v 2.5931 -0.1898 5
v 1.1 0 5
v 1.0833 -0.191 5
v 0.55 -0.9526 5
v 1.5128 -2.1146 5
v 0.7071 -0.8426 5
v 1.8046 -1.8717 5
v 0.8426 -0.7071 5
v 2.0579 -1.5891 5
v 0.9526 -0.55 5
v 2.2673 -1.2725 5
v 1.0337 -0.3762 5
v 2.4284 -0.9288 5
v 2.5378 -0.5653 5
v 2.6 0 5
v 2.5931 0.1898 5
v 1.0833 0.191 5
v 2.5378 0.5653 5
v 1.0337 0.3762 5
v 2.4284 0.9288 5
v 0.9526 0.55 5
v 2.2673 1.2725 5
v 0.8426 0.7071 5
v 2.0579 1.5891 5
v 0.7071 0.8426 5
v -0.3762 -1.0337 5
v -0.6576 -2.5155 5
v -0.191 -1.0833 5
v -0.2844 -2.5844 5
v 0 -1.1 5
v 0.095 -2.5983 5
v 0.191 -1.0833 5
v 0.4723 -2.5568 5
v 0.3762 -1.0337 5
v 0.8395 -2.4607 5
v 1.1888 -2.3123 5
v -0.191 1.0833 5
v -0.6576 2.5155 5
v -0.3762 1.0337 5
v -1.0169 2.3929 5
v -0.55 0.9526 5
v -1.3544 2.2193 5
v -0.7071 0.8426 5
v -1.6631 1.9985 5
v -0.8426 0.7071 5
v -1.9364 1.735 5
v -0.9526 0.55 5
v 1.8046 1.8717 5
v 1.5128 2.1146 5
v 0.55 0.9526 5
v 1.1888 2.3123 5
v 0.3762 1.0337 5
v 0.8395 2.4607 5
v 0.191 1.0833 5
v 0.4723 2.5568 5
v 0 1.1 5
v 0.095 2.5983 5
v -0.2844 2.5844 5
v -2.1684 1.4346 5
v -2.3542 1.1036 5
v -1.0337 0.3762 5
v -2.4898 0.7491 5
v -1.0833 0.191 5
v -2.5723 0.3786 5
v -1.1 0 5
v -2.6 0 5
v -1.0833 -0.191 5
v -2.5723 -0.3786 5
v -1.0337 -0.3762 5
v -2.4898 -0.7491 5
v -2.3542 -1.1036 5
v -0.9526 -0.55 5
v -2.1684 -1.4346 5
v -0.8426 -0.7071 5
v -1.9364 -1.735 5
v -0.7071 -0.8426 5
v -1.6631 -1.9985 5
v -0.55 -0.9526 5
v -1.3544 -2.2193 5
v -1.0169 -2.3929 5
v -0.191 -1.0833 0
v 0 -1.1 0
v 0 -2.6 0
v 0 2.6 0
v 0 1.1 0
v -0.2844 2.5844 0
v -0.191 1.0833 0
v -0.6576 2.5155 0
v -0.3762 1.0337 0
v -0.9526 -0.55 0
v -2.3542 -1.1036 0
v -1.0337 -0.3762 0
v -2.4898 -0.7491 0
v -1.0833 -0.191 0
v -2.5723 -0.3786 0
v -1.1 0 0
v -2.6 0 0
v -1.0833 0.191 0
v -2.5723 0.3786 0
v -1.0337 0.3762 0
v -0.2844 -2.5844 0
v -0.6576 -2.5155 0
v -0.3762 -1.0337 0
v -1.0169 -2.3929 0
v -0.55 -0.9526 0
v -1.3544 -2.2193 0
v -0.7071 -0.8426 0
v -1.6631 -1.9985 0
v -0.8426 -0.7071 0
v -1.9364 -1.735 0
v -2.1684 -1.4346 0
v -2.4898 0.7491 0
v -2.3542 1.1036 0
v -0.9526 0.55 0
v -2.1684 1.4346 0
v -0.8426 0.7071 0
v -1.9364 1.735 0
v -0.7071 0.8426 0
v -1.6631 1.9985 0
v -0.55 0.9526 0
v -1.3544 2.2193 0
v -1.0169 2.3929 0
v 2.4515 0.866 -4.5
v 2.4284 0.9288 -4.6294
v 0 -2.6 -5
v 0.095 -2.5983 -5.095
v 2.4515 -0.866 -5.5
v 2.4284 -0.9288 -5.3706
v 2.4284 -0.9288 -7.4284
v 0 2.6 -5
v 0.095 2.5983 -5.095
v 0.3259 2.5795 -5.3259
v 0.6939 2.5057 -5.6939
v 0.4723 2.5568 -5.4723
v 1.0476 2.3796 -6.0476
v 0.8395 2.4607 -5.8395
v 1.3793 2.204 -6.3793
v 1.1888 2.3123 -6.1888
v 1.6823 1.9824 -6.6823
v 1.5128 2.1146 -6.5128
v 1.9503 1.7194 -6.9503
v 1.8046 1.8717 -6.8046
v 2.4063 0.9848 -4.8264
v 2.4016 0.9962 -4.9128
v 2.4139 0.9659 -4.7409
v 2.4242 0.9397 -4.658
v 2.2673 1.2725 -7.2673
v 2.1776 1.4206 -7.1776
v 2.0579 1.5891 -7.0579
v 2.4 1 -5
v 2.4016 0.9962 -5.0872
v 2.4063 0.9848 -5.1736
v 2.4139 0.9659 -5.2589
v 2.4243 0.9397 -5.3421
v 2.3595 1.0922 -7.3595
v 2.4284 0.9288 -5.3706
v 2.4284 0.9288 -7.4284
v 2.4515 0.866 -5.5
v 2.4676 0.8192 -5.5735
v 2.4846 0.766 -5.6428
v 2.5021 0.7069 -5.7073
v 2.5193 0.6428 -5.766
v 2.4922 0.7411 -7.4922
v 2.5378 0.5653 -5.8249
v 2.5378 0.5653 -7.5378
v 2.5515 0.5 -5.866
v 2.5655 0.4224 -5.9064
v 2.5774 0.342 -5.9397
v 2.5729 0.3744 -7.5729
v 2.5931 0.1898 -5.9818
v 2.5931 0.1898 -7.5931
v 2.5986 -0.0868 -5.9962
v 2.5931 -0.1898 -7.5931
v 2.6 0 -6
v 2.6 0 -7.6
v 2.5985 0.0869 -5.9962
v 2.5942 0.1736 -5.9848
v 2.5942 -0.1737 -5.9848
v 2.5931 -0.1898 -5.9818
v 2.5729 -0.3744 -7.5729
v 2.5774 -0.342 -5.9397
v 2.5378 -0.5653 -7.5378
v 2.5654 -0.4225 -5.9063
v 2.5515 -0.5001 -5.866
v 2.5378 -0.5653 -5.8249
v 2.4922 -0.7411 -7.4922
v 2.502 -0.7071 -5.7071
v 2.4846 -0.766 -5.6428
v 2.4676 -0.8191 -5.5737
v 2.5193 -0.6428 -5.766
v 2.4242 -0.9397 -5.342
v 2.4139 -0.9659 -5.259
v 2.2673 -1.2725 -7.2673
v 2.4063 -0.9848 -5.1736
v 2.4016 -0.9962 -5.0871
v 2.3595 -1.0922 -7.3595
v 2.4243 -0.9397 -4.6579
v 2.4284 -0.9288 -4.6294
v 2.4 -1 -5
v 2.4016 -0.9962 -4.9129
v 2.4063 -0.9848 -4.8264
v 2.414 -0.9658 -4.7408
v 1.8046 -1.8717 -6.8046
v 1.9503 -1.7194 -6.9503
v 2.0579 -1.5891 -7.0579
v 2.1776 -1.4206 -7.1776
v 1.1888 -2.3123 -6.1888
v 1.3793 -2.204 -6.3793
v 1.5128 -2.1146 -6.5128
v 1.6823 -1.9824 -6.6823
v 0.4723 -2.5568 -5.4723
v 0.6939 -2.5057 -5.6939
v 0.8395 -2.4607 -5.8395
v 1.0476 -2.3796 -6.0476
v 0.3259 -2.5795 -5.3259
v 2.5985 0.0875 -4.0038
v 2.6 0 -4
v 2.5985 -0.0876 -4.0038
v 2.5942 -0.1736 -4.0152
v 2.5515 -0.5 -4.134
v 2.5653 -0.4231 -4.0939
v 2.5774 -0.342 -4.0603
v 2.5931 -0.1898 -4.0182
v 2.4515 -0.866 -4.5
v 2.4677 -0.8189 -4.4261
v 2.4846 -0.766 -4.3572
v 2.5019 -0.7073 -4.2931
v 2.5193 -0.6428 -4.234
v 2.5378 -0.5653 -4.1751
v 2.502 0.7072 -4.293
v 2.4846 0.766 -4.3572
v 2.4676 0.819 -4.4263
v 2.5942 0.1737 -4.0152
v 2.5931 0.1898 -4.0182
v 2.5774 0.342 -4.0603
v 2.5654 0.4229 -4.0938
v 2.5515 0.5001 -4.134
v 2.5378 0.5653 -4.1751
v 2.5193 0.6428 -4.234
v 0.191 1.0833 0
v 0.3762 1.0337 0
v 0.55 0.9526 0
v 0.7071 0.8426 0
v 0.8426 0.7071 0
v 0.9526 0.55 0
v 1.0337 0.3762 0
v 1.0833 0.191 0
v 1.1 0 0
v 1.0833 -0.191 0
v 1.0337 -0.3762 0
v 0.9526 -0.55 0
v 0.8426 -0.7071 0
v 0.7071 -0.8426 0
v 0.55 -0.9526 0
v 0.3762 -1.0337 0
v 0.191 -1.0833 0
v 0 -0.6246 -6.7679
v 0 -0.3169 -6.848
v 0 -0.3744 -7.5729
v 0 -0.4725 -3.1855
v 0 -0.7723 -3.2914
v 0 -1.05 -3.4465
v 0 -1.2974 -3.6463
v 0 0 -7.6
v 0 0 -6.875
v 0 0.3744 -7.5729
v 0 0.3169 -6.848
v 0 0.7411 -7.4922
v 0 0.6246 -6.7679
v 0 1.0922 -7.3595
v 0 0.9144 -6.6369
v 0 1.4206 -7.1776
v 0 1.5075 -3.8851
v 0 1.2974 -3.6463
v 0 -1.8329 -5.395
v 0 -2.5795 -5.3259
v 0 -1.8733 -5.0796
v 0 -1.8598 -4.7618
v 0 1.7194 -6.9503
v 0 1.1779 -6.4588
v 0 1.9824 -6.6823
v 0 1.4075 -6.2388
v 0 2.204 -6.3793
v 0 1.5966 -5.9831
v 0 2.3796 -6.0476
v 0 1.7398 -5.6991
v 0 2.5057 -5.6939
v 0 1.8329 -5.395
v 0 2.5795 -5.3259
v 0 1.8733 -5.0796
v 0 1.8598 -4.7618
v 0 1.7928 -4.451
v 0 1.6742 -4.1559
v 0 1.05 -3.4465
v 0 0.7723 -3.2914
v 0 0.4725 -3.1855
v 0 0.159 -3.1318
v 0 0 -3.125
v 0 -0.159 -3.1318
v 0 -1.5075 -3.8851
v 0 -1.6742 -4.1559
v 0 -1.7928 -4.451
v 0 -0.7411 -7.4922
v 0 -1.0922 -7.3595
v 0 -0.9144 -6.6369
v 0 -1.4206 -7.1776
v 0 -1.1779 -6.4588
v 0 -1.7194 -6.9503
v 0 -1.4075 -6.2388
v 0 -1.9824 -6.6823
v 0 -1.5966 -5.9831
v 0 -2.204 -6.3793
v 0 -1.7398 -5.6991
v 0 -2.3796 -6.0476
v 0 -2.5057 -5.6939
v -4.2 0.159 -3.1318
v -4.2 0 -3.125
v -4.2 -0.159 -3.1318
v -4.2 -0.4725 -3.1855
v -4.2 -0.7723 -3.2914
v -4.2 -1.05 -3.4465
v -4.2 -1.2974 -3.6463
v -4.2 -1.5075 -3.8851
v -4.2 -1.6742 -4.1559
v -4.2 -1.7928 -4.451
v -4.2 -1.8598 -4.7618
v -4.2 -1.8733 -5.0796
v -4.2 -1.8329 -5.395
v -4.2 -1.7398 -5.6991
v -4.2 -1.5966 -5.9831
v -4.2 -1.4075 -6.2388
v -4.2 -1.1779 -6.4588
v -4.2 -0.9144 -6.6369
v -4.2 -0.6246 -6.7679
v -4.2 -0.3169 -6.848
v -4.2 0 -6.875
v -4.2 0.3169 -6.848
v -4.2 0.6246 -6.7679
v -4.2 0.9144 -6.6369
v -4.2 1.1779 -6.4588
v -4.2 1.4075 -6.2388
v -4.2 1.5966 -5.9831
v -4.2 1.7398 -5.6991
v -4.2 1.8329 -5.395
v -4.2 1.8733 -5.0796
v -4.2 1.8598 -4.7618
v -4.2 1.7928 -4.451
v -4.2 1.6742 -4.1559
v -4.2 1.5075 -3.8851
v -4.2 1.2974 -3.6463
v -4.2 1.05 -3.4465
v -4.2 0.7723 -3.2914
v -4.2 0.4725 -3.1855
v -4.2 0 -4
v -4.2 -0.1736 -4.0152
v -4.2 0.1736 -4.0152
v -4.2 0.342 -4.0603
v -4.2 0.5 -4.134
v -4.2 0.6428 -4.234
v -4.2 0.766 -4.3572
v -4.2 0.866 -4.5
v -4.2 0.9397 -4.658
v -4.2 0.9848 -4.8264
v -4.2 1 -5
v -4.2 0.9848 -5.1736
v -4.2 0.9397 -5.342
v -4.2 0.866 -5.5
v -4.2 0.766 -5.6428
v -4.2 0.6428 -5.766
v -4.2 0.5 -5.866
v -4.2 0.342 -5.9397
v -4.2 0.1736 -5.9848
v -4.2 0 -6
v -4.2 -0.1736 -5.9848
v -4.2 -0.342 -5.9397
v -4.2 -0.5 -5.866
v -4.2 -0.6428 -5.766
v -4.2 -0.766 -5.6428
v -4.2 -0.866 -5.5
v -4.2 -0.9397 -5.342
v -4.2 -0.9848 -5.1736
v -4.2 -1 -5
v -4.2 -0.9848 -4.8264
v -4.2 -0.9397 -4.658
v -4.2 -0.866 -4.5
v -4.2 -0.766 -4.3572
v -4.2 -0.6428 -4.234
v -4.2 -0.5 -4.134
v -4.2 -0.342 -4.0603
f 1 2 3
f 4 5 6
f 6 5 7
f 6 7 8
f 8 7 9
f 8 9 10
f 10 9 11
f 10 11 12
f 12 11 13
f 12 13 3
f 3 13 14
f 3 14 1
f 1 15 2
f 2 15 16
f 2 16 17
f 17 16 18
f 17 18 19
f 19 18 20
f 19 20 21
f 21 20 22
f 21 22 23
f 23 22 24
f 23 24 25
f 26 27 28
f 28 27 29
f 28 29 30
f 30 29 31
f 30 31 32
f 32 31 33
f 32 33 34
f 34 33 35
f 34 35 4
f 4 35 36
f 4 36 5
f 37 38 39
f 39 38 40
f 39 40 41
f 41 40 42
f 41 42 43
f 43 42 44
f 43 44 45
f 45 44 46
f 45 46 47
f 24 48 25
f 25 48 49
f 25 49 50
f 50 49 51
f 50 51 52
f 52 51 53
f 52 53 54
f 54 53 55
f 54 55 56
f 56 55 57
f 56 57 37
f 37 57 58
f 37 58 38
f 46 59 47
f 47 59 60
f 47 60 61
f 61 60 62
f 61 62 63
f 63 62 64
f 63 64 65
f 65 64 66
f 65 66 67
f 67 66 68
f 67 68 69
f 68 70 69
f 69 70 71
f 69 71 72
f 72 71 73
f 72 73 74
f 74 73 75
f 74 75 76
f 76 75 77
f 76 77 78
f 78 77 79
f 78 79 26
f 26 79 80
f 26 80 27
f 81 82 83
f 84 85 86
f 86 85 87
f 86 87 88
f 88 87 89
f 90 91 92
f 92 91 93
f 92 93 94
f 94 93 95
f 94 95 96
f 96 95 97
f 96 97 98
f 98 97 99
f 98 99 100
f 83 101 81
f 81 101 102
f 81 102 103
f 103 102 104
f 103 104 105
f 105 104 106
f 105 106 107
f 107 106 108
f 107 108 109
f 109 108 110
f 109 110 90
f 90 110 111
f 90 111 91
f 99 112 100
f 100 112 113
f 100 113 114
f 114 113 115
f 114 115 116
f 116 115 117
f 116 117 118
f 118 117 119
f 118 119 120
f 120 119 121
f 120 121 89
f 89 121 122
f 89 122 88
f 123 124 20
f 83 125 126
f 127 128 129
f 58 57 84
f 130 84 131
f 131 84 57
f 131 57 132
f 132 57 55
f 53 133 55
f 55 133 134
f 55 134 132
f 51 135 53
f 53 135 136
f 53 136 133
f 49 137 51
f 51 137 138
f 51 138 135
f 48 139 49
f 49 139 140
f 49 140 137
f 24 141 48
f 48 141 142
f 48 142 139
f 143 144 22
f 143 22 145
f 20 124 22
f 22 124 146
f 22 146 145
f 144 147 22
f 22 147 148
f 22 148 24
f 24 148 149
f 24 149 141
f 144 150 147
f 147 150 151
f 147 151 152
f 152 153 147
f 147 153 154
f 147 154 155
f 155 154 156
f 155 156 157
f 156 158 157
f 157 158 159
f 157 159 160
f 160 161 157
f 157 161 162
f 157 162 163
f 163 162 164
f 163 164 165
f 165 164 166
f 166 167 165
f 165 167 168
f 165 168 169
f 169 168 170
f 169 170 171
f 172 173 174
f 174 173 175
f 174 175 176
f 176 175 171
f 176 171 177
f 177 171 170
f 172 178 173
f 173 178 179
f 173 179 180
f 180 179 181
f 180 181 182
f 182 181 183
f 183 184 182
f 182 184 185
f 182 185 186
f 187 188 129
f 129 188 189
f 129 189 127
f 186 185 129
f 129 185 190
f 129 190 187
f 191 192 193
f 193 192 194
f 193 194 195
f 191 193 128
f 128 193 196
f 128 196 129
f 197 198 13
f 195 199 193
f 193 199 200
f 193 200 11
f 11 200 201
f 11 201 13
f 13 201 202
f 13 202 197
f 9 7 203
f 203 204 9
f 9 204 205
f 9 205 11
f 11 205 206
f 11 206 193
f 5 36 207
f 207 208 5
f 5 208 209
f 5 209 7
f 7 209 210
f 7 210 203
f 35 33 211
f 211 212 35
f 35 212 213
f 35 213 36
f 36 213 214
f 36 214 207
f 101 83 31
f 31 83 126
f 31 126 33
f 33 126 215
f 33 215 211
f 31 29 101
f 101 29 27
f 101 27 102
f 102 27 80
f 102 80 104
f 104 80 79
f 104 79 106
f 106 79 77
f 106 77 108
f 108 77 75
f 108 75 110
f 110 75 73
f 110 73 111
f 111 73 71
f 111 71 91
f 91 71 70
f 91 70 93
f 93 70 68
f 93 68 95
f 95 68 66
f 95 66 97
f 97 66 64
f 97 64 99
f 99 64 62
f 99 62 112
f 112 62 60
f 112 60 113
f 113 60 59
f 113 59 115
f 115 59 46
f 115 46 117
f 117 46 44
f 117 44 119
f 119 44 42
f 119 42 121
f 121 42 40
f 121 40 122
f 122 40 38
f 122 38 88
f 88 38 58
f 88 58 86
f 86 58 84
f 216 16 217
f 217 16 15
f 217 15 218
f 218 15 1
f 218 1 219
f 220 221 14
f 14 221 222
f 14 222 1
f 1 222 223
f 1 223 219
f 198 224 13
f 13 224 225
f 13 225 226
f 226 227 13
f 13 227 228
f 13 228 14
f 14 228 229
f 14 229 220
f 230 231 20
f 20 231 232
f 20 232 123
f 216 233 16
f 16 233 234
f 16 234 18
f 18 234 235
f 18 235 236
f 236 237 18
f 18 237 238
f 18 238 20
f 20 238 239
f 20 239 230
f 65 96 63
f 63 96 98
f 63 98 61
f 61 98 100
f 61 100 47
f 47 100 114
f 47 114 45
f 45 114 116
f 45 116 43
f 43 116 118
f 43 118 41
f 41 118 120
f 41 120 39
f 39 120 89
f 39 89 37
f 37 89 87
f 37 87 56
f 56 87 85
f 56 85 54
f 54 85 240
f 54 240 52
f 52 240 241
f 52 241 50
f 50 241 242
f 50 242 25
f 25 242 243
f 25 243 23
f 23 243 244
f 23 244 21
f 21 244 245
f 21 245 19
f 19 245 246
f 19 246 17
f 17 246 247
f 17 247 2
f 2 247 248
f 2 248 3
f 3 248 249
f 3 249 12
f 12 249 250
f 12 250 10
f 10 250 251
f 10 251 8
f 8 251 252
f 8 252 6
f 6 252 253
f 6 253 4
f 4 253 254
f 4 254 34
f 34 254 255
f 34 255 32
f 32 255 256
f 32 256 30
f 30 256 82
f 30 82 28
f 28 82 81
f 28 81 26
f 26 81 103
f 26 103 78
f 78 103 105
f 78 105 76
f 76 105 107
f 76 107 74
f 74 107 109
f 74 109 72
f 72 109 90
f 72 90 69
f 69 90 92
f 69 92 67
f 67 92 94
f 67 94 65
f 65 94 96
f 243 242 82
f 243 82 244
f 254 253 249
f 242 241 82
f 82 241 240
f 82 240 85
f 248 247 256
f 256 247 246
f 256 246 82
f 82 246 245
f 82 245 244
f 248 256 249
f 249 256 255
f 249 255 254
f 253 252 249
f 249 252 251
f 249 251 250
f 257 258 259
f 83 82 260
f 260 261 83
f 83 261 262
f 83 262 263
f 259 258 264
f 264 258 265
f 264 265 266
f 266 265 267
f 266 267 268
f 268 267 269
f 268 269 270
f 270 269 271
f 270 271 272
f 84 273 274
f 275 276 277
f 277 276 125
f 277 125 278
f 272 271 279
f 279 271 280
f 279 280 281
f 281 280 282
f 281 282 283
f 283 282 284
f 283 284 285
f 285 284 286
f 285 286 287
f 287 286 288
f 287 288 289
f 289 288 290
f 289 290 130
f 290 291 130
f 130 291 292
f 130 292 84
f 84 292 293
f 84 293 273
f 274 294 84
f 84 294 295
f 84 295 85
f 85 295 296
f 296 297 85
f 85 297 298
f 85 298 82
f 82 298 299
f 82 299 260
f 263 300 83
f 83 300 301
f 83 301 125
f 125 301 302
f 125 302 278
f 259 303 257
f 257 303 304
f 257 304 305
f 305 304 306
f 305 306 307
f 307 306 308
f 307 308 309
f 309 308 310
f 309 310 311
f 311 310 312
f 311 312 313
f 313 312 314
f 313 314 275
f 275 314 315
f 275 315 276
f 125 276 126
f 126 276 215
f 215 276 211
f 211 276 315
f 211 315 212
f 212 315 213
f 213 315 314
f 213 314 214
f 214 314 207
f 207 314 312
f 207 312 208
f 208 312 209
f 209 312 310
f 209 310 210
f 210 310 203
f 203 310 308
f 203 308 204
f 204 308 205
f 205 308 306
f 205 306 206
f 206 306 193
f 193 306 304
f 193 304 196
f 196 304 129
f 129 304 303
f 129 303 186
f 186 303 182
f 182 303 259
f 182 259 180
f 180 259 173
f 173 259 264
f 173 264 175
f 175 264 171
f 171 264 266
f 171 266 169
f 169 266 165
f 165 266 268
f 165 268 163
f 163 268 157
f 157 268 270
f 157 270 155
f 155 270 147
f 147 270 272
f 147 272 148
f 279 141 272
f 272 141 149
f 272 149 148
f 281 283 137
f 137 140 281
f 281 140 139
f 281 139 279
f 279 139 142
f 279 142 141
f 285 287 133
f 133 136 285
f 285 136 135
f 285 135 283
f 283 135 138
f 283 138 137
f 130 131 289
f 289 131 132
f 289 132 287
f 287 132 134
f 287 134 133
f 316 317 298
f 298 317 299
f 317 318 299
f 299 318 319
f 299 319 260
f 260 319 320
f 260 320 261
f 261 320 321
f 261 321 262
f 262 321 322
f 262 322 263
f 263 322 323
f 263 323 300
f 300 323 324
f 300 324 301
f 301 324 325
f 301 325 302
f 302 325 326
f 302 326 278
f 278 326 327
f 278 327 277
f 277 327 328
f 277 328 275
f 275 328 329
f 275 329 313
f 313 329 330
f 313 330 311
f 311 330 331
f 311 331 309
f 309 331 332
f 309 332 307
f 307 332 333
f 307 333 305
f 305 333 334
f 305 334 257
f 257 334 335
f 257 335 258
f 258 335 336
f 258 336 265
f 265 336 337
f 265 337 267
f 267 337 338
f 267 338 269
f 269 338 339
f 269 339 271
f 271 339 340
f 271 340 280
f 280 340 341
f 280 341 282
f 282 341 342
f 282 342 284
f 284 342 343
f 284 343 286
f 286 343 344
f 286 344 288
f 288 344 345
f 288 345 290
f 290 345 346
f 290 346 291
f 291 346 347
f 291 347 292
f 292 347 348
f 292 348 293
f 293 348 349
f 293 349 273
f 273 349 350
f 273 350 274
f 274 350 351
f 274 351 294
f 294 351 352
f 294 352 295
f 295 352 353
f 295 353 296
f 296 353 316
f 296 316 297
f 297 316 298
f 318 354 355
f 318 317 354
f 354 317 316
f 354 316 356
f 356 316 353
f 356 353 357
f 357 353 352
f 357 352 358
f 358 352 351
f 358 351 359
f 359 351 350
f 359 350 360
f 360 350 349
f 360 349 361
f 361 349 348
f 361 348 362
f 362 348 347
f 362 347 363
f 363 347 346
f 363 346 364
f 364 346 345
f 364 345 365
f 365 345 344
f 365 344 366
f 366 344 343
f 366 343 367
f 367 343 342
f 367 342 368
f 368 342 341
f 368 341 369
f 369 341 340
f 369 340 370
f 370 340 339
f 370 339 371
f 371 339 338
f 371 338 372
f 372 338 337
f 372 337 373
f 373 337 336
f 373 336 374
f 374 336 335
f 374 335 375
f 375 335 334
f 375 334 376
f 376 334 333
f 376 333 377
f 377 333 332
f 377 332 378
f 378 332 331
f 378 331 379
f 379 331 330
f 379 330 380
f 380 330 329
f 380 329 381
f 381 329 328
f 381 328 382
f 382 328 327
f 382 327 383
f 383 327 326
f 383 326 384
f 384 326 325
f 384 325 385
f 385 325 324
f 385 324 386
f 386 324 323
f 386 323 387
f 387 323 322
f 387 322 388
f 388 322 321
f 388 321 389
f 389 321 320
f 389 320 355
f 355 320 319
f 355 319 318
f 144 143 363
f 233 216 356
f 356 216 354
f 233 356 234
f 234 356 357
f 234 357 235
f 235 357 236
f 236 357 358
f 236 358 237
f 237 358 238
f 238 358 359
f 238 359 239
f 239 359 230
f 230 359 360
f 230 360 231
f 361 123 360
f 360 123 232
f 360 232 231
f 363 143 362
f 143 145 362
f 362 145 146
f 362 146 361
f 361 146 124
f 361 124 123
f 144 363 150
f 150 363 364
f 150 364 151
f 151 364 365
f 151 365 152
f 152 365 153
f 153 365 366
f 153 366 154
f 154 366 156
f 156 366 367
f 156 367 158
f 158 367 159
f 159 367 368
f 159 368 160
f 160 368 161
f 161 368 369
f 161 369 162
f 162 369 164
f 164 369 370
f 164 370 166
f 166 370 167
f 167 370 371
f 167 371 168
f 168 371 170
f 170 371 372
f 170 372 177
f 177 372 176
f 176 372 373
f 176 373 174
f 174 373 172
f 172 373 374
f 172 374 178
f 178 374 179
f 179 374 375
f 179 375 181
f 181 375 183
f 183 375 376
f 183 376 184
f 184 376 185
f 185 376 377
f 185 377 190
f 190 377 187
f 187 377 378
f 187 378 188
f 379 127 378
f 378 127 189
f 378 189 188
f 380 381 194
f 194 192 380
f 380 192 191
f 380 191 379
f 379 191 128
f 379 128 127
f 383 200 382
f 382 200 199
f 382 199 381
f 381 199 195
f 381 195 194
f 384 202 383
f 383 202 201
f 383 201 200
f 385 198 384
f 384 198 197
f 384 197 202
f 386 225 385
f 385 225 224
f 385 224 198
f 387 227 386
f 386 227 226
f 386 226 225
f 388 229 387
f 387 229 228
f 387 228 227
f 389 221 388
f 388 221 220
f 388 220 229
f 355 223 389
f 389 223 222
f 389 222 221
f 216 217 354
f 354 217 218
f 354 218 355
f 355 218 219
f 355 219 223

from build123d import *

# Parameters (mm, degrees)
SKETCH8_R                = 2.6
SKETCH8_R_2              = 1.1
BOSS_EXTRUDE2_DEPTH      = 5
BOSS_EXTRUDE3_REACH      = 8.206
BOSS_EXTRUDE3_END_RADIUS = 2.6
SKETCH10_R               = 1.875
BOSS_EXTRUDE4_DEPTH      = 4.2
SKETCH11_R               = 1
CUT_EXTRUDE1_DEPTH       = 11.524257694


with BuildPart() as part:
    # Sketch8 → Boss-Extrude2 (new body)
    with BuildSketch(Plane.XY):
        Circle(SKETCH8_R)
        Circle(SKETCH8_R_2, mode=Mode.SUBTRACT)
    extrude(amount=BOSS_EXTRUDE2_DEPTH)

    # Boss-Extrude3: up to this cylinder (the profile starts inside it)
    boss_extrude3_end = Plane(origin=(0, 0, -3.544928), z_dir=(0, 0, -1)) * Cylinder(BOSS_EXTRUDE3_END_RADIUS, 22.612, mode=Mode.PRIVATE)
    # Sketch9 → Boss-Extrude3 (add, up to the surface)
    with BuildSketch(Plane(origin=(0, 0, 0), x_dir=(0, 0, -1), z_dir=(1, 0, 0)), mode=Mode.PRIVATE) as boss_extrude3_sk1:
        with BuildLine():
            Line((0, 2.6), (5, 2.6))
            ThreePointArc((5, 2.6), (7.6, 0), (5, -2.6))
            Line((5, -2.6), (0, -2.6))
            Line((0, -2.6), (0, 2.6))
        make_face()
    boss_extrude3_tool1 = extrude(boss_extrude3_sk1.sketch, amount=BOSS_EXTRUDE3_REACH, mode=Mode.PRIVATE) & boss_extrude3_end
    add(boss_extrude3_tool1.solids().sort_by_distance((0, 0, -3.544928))[0])

    # Sketch10 → Boss-Extrude4 (add)
    with BuildSketch(Plane.ZY):
        with Locations((-5, 0)):
            Circle(SKETCH10_R)
    extrude(amount=BOSS_EXTRUDE4_DEPTH)

    # Sketch11 → Cut-Extrude1 (cut, through all)
    with BuildSketch(Plane.ZY.offset(4.2)):
        with Locations((-5, 0)):
            Circle(SKETCH11_R)
    extrude(amount=-CUT_EXTRUDE1_DEPTH, mode=Mode.SUBTRACT)


solid = part.part
